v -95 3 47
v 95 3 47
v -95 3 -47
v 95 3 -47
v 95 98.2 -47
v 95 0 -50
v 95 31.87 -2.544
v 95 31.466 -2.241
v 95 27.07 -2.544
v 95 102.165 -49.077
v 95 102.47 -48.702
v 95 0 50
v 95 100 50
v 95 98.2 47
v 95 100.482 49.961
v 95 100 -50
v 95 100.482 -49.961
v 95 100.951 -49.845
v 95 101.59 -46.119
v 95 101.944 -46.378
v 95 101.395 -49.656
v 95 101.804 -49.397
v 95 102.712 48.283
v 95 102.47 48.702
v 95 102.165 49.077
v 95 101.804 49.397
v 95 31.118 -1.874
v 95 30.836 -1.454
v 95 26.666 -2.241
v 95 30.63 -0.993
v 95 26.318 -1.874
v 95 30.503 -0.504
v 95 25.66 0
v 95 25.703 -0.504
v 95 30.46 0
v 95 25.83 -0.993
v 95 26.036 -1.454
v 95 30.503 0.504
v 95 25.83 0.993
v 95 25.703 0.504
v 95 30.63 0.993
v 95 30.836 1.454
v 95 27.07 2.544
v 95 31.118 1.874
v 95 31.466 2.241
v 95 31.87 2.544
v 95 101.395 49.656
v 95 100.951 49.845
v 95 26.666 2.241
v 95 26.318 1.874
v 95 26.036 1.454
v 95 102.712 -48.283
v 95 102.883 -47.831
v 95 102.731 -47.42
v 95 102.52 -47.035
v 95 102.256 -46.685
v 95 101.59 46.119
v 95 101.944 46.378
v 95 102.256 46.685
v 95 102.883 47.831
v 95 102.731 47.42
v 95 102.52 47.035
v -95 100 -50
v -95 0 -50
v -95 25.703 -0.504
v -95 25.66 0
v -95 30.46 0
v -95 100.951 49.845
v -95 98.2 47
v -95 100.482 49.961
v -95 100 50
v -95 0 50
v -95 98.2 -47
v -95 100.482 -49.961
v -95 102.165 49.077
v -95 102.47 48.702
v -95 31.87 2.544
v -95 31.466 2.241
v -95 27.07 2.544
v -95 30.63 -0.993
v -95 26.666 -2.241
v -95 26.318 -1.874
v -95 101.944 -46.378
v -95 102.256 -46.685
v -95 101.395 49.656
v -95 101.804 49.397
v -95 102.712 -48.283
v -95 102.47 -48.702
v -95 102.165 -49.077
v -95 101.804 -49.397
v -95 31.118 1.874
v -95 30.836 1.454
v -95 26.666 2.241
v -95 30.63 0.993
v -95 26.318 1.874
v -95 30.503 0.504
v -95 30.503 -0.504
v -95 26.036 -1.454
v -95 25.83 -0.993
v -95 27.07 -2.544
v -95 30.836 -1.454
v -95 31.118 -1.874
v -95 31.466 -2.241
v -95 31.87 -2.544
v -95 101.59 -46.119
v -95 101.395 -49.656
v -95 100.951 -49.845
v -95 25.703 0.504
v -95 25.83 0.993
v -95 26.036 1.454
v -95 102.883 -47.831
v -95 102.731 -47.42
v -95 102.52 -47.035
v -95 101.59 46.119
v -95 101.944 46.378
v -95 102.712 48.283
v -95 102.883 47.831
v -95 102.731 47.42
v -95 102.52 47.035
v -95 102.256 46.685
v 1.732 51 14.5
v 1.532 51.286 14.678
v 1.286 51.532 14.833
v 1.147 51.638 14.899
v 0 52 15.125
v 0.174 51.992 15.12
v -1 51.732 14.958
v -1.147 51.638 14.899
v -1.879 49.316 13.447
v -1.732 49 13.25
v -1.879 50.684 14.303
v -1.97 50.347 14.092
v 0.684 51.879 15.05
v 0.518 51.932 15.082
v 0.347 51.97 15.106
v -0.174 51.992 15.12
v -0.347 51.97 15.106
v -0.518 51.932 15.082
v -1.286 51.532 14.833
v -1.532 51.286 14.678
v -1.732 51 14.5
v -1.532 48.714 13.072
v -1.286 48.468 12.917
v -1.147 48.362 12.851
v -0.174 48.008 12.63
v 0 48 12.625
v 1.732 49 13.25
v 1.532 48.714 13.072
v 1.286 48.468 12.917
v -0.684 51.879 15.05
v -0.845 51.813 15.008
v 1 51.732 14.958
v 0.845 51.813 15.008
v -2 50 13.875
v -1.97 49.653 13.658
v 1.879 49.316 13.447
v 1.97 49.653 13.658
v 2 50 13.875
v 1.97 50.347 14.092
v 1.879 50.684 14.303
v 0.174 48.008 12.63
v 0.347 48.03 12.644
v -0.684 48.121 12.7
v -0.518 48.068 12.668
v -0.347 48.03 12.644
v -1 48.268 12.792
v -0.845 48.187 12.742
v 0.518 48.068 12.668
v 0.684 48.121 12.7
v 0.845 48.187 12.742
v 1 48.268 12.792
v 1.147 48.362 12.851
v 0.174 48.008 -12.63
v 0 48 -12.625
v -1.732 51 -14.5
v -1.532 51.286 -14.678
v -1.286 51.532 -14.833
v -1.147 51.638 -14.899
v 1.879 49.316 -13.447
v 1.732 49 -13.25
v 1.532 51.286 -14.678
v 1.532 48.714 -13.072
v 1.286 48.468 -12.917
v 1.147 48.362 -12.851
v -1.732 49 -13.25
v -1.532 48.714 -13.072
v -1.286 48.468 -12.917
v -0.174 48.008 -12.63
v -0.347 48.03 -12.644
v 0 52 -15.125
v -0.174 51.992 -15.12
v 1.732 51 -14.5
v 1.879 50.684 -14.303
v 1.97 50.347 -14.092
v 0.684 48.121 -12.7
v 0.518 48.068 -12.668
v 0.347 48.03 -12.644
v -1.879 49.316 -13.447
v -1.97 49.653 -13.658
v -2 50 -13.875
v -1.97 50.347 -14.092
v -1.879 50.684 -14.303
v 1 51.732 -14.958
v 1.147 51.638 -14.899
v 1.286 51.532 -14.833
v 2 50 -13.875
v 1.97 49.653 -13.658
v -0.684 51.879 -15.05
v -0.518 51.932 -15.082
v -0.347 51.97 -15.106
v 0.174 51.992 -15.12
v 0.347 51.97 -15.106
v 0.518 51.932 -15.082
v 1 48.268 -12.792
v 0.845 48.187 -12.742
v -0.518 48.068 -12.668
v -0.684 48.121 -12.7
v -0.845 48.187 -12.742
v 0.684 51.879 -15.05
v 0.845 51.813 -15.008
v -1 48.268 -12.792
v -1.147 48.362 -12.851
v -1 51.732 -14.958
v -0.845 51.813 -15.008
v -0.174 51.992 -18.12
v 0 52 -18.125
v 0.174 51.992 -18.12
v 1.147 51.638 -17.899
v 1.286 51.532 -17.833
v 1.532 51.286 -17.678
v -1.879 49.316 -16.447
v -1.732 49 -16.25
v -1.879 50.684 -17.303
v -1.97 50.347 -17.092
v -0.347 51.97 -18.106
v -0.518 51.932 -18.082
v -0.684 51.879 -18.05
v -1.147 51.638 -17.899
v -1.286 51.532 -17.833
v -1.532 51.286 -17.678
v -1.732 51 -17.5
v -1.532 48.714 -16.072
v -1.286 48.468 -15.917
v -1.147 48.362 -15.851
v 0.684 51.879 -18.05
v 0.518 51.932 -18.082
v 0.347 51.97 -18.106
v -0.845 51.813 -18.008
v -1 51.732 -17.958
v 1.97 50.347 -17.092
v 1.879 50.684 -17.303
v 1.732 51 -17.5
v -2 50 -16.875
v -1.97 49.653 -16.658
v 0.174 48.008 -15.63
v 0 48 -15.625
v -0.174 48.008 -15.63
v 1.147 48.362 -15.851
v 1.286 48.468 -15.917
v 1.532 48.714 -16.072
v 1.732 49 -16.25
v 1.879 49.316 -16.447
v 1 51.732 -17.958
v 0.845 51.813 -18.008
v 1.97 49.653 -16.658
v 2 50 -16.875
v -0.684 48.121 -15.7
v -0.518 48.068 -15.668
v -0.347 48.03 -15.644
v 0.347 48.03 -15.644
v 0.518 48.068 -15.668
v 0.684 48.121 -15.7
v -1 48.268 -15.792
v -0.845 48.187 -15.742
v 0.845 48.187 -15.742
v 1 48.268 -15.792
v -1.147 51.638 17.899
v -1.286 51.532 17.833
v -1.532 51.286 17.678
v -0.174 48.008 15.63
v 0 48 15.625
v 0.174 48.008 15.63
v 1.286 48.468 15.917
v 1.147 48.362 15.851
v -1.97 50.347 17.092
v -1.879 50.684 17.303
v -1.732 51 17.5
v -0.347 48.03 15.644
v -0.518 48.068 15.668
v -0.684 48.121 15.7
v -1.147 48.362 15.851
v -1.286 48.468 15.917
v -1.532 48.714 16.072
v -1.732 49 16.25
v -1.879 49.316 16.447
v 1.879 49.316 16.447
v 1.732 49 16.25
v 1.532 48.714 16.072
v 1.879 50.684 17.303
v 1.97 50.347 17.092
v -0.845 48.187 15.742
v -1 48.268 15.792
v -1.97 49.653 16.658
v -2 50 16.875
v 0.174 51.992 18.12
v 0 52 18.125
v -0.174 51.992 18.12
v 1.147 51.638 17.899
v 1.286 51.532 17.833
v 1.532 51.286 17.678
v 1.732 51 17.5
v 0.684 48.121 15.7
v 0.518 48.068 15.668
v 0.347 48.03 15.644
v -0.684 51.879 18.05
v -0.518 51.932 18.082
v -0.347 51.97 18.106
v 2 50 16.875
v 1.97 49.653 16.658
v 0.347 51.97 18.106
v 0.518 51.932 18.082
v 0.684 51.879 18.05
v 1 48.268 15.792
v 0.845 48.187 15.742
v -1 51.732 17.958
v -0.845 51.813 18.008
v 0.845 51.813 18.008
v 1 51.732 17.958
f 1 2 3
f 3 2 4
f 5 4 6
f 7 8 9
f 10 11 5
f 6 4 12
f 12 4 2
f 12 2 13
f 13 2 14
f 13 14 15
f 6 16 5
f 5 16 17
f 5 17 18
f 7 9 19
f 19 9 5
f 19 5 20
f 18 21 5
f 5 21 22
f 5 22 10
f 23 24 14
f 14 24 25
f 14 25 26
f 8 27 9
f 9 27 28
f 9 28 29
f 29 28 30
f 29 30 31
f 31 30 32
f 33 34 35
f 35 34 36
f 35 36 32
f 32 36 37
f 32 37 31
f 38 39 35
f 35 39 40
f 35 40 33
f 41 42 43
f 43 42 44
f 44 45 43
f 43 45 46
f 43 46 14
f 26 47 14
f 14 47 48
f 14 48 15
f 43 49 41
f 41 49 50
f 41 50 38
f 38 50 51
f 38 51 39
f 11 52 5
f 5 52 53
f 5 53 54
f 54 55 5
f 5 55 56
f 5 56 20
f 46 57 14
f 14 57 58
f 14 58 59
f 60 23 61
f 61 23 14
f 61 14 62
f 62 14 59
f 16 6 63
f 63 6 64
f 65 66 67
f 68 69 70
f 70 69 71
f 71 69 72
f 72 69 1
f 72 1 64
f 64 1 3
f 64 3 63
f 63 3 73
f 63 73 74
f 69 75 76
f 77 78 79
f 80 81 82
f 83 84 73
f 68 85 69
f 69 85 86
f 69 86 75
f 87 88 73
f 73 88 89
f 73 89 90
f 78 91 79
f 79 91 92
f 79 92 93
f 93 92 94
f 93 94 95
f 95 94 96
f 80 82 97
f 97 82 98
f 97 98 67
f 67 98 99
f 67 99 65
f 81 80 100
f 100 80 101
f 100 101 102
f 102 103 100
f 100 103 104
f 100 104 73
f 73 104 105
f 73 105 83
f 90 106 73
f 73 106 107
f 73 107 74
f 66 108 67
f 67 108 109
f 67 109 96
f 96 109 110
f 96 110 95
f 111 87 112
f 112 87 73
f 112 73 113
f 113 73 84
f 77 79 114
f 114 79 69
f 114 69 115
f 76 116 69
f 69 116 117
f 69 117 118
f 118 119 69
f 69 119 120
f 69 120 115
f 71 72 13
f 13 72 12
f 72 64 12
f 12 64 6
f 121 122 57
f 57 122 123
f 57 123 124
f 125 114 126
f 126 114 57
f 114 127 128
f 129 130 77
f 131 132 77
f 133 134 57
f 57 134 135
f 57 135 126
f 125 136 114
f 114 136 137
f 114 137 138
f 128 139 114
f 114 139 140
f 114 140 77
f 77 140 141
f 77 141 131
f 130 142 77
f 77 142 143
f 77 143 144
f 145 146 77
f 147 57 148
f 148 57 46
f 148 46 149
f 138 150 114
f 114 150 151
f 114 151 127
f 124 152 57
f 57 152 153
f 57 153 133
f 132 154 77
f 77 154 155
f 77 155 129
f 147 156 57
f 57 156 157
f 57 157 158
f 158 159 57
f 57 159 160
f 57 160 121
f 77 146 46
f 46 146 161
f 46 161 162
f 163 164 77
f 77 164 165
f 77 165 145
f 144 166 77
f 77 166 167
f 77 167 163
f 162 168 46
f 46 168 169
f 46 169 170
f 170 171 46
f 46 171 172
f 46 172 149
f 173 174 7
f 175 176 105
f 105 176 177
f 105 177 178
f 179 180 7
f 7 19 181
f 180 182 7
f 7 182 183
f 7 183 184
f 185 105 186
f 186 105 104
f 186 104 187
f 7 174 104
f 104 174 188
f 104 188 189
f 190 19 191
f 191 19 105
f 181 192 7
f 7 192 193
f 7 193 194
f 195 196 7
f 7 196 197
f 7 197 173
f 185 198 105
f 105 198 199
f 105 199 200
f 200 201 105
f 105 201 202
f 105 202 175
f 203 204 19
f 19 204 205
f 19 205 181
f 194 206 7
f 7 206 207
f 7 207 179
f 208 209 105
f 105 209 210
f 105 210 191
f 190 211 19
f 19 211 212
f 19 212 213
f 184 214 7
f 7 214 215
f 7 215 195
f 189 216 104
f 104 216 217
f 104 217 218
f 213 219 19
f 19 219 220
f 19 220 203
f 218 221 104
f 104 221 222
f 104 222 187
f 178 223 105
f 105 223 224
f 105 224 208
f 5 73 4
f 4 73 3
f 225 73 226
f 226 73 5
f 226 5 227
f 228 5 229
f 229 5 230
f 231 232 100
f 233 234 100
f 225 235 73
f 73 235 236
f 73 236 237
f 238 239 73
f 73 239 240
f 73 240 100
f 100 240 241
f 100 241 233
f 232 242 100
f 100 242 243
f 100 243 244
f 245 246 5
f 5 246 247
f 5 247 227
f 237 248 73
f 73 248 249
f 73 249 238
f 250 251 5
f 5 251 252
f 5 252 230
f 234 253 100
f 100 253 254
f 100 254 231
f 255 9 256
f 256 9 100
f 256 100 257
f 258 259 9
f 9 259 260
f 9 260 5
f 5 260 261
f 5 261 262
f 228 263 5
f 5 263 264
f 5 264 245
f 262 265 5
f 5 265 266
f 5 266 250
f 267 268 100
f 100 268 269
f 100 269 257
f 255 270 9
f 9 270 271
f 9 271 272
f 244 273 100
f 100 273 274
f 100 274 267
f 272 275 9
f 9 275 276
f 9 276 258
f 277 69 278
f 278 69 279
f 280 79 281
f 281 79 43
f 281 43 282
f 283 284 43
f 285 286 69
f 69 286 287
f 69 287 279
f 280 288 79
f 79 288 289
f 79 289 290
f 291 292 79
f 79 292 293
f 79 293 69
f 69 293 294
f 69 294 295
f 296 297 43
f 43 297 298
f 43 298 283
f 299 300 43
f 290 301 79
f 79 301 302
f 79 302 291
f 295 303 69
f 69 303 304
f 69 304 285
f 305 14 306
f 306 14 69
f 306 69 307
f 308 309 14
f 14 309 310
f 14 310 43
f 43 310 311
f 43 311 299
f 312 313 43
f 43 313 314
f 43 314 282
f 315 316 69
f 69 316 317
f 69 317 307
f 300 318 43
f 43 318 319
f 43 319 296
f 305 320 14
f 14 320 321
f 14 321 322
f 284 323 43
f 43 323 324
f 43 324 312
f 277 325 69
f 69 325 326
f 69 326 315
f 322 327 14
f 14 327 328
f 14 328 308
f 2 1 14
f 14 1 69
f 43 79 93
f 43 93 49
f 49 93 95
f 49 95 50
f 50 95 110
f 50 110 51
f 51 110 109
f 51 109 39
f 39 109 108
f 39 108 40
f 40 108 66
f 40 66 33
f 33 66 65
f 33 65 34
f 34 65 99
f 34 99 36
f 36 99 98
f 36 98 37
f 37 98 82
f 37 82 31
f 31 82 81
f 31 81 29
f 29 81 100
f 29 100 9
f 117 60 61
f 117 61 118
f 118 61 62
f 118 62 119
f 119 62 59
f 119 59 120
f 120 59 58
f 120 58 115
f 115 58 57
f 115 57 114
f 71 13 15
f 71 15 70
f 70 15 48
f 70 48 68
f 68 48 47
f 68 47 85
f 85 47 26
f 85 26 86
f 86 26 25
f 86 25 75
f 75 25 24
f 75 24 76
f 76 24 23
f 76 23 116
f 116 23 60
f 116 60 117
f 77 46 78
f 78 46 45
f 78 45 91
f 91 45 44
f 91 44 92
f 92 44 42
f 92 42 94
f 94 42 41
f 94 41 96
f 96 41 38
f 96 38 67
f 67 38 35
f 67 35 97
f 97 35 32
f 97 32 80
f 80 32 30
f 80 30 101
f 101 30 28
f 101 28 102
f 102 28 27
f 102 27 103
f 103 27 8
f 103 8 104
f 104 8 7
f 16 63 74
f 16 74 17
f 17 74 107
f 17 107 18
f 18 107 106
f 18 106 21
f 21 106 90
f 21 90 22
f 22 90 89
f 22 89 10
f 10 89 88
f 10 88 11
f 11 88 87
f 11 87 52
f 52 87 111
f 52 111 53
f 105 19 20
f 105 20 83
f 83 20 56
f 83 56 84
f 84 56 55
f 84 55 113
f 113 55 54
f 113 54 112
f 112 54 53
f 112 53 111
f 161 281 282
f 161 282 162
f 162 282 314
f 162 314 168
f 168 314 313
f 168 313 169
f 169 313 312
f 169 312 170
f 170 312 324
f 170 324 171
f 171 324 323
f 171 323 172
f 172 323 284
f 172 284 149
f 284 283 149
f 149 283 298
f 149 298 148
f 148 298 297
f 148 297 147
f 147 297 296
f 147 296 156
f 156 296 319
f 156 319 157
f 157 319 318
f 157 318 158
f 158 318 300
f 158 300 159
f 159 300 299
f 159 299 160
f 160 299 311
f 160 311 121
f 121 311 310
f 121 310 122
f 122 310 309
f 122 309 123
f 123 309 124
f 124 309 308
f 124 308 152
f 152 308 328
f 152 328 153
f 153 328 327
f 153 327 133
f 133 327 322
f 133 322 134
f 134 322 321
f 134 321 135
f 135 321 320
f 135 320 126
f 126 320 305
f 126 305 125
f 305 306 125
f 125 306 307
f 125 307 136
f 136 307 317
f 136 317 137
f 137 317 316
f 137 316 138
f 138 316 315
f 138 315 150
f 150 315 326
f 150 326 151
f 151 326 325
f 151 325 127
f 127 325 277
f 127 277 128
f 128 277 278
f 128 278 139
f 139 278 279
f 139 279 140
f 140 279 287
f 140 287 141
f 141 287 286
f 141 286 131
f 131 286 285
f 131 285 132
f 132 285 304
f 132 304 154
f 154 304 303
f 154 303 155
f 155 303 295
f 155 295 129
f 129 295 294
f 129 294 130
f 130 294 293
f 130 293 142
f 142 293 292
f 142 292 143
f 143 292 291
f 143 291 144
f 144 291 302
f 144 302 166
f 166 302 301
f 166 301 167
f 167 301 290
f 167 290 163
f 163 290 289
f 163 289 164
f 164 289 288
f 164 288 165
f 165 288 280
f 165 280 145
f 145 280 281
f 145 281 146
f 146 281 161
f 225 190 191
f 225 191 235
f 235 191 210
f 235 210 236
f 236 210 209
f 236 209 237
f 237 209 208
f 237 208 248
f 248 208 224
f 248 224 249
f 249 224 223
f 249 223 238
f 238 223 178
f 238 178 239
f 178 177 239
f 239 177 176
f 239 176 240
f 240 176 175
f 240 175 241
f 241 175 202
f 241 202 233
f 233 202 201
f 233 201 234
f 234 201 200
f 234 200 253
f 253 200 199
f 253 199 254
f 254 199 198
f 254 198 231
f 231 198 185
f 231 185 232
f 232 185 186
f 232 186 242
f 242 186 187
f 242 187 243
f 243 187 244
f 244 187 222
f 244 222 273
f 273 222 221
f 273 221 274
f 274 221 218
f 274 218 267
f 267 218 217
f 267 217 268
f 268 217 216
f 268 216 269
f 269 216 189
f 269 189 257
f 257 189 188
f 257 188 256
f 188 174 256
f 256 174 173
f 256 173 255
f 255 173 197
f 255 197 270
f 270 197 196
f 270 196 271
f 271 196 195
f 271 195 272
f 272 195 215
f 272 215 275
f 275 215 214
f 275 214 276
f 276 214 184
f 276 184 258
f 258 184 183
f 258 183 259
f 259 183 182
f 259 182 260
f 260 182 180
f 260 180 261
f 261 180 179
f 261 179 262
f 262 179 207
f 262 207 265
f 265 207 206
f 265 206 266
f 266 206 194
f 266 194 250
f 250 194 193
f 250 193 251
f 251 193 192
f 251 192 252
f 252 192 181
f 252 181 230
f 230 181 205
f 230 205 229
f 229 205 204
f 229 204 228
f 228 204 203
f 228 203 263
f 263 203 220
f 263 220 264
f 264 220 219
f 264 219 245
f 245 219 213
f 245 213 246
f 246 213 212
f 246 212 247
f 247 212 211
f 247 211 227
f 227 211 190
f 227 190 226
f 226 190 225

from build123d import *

# Parameters (mm, degrees)
SKETCH1_W                = 190
SKETCH1_H                = 100
BOSS_EXTRUDE1_DEPTH      = 3
BOSS_EXTRUDE2_DEPTH      = 95
BOSS_EXTRUDE2_DEPTH_BACK = 95
SKETCH2_W                = 3
SKETCH2_H                = 100
FILLET1_R                = 3
CUT_EXTRUDE1_DEPTH       = 30
CUT_EXTRUDE1_DEPTH_BACK  = 30
SKETCH3_R                = 2


with BuildPart() as part:
    # Sketch1 → Boss-Extrude1 (new body)
    with BuildSketch(Plane(origin=(0, 0, 0), x_dir=(1, 0, 0), z_dir=(0, 1, 0))):
        Rectangle(SKETCH1_W, SKETCH1_H)
    extrude(amount=BOSS_EXTRUDE1_DEPTH)

    # Sketch2 → Boss-Extrude2 (add, two sides: drawn at the far end of the back side and taken through both)
    with BuildSketch(Plane(origin=(0, 0, 0), x_dir=(0, 0, -1), z_dir=(1, 0, 0)).offset(-BOSS_EXTRUDE2_DEPTH_BACK)):
        with Locations((-48.5, 53)):
            Rectangle(SKETCH2_W, SKETCH2_H)
        Polygon((0, 23), (0, 27.8), (-47, 103), (-47, 98.2), align=None)
        Polygon((47, 98.2), (47, 103), (0, 27.8), (0, 23), align=None)
        with Locations((48.5, 53)):
            Rectangle(SKETCH2_W, SKETCH2_H)
    extrude(amount=BOSS_EXTRUDE2_DEPTH + BOSS_EXTRUDE2_DEPTH_BACK)

    # Fillet1
    # the kernel refuses this fillet: 3 mm, written as the material it adds along each edge
    with BuildSketch(Plane(origin=(-95, 27.8, 0), x_dir=(0, 0.8479983040050875, -0.529998940003181), z_dir=(1, 0, 0))) as fillet1_piece_1:
        with BuildLine():
            CenterArc((FILLET1_R * 1.6, FILLET1_R), FILLET1_R, 154.010766416, 115.989233584)
            Line((FILLET1_R * 0.701123595506, FILLET1_R * 1.43820224719), (0, 0))
            Line((0, 0), (FILLET1_R * 1.6, 0))
        make_face()
    extrude(amount=190)
    # the kernel refuses this fillet: 3 mm, written as the material it takes off along each edge
    with BuildSketch(Plane(origin=(-107, 23, 0), x_dir=(0, 0.8479983040050876, 0.5299989400031808), z_dir=(1, 0, 0))) as fillet1_2_piece_1:
        with BuildLine():
            CenterArc((FILLET1_R * 1.6, -FILLET1_R), FILLET1_R, 90, 115.989233584)
            Line((FILLET1_R * 0.701123595506, -FILLET1_R * 1.43820224719), (0, 0))
            Line((0, 0), (FILLET1_R * 1.6, 0))
        make_face()
    extrude(amount=214, mode=Mode.SUBTRACT)
    with BuildSketch(Plane(origin=(102.5, 103, 50), x_dir=(0, -1, 0), z_dir=(-1, 0, 0)), Plane(origin=(-102.5, 103, -50), x_dir=(0, -1, 0), z_dir=(1, 0, 0))) as fillet1_2_piece_2:
        with BuildLine():
            CenterArc((FILLET1_R, -FILLET1_R), FILLET1_R, 90, 90)
            Line((0, -FILLET1_R), (0, 0))
            Line((0, 0), (FILLET1_R, 0))
        make_face()
    extrude(amount=205, mode=Mode.SUBTRACT)
    with BuildSketch(Plane(origin=(99.156857311, 103, 47), x_dir=(0, 0, 1), z_dir=(-1, 0, 0)), Plane(origin=(-99.156857311, 103, -47), x_dir=(0, 0, -1), z_dir=(1, 0, 0))) as fillet1_2_piece_3:
        with BuildLine():
            CenterArc((FILLET1_R * 0.554247641507, -FILLET1_R), FILLET1_R, 90, 57.994616792)
            Line((-FILLET1_R * 0.293750662498, -FILLET1_R * 0.470001059997), (0, 0))
            Line((0, 0), (FILLET1_R * 0.554247641507, 0))
        make_face()
    extrude(amount=198.313714623, mode=Mode.SUBTRACT)

    # Sketch3 → Cut-Extrude1 (cut, two sides: drawn at the far end of the back side and taken through both)
    with BuildSketch(Plane.XY.offset(-CUT_EXTRUDE1_DEPTH_BACK)):
        with Locations(Location((0, 50, 0), (0, 0, 270))):
            Circle(SKETCH3_R)
    extrude(amount=CUT_EXTRUDE1_DEPTH + CUT_EXTRUDE1_DEPTH_BACK, mode=Mode.SUBTRACT)


solid = part.part
